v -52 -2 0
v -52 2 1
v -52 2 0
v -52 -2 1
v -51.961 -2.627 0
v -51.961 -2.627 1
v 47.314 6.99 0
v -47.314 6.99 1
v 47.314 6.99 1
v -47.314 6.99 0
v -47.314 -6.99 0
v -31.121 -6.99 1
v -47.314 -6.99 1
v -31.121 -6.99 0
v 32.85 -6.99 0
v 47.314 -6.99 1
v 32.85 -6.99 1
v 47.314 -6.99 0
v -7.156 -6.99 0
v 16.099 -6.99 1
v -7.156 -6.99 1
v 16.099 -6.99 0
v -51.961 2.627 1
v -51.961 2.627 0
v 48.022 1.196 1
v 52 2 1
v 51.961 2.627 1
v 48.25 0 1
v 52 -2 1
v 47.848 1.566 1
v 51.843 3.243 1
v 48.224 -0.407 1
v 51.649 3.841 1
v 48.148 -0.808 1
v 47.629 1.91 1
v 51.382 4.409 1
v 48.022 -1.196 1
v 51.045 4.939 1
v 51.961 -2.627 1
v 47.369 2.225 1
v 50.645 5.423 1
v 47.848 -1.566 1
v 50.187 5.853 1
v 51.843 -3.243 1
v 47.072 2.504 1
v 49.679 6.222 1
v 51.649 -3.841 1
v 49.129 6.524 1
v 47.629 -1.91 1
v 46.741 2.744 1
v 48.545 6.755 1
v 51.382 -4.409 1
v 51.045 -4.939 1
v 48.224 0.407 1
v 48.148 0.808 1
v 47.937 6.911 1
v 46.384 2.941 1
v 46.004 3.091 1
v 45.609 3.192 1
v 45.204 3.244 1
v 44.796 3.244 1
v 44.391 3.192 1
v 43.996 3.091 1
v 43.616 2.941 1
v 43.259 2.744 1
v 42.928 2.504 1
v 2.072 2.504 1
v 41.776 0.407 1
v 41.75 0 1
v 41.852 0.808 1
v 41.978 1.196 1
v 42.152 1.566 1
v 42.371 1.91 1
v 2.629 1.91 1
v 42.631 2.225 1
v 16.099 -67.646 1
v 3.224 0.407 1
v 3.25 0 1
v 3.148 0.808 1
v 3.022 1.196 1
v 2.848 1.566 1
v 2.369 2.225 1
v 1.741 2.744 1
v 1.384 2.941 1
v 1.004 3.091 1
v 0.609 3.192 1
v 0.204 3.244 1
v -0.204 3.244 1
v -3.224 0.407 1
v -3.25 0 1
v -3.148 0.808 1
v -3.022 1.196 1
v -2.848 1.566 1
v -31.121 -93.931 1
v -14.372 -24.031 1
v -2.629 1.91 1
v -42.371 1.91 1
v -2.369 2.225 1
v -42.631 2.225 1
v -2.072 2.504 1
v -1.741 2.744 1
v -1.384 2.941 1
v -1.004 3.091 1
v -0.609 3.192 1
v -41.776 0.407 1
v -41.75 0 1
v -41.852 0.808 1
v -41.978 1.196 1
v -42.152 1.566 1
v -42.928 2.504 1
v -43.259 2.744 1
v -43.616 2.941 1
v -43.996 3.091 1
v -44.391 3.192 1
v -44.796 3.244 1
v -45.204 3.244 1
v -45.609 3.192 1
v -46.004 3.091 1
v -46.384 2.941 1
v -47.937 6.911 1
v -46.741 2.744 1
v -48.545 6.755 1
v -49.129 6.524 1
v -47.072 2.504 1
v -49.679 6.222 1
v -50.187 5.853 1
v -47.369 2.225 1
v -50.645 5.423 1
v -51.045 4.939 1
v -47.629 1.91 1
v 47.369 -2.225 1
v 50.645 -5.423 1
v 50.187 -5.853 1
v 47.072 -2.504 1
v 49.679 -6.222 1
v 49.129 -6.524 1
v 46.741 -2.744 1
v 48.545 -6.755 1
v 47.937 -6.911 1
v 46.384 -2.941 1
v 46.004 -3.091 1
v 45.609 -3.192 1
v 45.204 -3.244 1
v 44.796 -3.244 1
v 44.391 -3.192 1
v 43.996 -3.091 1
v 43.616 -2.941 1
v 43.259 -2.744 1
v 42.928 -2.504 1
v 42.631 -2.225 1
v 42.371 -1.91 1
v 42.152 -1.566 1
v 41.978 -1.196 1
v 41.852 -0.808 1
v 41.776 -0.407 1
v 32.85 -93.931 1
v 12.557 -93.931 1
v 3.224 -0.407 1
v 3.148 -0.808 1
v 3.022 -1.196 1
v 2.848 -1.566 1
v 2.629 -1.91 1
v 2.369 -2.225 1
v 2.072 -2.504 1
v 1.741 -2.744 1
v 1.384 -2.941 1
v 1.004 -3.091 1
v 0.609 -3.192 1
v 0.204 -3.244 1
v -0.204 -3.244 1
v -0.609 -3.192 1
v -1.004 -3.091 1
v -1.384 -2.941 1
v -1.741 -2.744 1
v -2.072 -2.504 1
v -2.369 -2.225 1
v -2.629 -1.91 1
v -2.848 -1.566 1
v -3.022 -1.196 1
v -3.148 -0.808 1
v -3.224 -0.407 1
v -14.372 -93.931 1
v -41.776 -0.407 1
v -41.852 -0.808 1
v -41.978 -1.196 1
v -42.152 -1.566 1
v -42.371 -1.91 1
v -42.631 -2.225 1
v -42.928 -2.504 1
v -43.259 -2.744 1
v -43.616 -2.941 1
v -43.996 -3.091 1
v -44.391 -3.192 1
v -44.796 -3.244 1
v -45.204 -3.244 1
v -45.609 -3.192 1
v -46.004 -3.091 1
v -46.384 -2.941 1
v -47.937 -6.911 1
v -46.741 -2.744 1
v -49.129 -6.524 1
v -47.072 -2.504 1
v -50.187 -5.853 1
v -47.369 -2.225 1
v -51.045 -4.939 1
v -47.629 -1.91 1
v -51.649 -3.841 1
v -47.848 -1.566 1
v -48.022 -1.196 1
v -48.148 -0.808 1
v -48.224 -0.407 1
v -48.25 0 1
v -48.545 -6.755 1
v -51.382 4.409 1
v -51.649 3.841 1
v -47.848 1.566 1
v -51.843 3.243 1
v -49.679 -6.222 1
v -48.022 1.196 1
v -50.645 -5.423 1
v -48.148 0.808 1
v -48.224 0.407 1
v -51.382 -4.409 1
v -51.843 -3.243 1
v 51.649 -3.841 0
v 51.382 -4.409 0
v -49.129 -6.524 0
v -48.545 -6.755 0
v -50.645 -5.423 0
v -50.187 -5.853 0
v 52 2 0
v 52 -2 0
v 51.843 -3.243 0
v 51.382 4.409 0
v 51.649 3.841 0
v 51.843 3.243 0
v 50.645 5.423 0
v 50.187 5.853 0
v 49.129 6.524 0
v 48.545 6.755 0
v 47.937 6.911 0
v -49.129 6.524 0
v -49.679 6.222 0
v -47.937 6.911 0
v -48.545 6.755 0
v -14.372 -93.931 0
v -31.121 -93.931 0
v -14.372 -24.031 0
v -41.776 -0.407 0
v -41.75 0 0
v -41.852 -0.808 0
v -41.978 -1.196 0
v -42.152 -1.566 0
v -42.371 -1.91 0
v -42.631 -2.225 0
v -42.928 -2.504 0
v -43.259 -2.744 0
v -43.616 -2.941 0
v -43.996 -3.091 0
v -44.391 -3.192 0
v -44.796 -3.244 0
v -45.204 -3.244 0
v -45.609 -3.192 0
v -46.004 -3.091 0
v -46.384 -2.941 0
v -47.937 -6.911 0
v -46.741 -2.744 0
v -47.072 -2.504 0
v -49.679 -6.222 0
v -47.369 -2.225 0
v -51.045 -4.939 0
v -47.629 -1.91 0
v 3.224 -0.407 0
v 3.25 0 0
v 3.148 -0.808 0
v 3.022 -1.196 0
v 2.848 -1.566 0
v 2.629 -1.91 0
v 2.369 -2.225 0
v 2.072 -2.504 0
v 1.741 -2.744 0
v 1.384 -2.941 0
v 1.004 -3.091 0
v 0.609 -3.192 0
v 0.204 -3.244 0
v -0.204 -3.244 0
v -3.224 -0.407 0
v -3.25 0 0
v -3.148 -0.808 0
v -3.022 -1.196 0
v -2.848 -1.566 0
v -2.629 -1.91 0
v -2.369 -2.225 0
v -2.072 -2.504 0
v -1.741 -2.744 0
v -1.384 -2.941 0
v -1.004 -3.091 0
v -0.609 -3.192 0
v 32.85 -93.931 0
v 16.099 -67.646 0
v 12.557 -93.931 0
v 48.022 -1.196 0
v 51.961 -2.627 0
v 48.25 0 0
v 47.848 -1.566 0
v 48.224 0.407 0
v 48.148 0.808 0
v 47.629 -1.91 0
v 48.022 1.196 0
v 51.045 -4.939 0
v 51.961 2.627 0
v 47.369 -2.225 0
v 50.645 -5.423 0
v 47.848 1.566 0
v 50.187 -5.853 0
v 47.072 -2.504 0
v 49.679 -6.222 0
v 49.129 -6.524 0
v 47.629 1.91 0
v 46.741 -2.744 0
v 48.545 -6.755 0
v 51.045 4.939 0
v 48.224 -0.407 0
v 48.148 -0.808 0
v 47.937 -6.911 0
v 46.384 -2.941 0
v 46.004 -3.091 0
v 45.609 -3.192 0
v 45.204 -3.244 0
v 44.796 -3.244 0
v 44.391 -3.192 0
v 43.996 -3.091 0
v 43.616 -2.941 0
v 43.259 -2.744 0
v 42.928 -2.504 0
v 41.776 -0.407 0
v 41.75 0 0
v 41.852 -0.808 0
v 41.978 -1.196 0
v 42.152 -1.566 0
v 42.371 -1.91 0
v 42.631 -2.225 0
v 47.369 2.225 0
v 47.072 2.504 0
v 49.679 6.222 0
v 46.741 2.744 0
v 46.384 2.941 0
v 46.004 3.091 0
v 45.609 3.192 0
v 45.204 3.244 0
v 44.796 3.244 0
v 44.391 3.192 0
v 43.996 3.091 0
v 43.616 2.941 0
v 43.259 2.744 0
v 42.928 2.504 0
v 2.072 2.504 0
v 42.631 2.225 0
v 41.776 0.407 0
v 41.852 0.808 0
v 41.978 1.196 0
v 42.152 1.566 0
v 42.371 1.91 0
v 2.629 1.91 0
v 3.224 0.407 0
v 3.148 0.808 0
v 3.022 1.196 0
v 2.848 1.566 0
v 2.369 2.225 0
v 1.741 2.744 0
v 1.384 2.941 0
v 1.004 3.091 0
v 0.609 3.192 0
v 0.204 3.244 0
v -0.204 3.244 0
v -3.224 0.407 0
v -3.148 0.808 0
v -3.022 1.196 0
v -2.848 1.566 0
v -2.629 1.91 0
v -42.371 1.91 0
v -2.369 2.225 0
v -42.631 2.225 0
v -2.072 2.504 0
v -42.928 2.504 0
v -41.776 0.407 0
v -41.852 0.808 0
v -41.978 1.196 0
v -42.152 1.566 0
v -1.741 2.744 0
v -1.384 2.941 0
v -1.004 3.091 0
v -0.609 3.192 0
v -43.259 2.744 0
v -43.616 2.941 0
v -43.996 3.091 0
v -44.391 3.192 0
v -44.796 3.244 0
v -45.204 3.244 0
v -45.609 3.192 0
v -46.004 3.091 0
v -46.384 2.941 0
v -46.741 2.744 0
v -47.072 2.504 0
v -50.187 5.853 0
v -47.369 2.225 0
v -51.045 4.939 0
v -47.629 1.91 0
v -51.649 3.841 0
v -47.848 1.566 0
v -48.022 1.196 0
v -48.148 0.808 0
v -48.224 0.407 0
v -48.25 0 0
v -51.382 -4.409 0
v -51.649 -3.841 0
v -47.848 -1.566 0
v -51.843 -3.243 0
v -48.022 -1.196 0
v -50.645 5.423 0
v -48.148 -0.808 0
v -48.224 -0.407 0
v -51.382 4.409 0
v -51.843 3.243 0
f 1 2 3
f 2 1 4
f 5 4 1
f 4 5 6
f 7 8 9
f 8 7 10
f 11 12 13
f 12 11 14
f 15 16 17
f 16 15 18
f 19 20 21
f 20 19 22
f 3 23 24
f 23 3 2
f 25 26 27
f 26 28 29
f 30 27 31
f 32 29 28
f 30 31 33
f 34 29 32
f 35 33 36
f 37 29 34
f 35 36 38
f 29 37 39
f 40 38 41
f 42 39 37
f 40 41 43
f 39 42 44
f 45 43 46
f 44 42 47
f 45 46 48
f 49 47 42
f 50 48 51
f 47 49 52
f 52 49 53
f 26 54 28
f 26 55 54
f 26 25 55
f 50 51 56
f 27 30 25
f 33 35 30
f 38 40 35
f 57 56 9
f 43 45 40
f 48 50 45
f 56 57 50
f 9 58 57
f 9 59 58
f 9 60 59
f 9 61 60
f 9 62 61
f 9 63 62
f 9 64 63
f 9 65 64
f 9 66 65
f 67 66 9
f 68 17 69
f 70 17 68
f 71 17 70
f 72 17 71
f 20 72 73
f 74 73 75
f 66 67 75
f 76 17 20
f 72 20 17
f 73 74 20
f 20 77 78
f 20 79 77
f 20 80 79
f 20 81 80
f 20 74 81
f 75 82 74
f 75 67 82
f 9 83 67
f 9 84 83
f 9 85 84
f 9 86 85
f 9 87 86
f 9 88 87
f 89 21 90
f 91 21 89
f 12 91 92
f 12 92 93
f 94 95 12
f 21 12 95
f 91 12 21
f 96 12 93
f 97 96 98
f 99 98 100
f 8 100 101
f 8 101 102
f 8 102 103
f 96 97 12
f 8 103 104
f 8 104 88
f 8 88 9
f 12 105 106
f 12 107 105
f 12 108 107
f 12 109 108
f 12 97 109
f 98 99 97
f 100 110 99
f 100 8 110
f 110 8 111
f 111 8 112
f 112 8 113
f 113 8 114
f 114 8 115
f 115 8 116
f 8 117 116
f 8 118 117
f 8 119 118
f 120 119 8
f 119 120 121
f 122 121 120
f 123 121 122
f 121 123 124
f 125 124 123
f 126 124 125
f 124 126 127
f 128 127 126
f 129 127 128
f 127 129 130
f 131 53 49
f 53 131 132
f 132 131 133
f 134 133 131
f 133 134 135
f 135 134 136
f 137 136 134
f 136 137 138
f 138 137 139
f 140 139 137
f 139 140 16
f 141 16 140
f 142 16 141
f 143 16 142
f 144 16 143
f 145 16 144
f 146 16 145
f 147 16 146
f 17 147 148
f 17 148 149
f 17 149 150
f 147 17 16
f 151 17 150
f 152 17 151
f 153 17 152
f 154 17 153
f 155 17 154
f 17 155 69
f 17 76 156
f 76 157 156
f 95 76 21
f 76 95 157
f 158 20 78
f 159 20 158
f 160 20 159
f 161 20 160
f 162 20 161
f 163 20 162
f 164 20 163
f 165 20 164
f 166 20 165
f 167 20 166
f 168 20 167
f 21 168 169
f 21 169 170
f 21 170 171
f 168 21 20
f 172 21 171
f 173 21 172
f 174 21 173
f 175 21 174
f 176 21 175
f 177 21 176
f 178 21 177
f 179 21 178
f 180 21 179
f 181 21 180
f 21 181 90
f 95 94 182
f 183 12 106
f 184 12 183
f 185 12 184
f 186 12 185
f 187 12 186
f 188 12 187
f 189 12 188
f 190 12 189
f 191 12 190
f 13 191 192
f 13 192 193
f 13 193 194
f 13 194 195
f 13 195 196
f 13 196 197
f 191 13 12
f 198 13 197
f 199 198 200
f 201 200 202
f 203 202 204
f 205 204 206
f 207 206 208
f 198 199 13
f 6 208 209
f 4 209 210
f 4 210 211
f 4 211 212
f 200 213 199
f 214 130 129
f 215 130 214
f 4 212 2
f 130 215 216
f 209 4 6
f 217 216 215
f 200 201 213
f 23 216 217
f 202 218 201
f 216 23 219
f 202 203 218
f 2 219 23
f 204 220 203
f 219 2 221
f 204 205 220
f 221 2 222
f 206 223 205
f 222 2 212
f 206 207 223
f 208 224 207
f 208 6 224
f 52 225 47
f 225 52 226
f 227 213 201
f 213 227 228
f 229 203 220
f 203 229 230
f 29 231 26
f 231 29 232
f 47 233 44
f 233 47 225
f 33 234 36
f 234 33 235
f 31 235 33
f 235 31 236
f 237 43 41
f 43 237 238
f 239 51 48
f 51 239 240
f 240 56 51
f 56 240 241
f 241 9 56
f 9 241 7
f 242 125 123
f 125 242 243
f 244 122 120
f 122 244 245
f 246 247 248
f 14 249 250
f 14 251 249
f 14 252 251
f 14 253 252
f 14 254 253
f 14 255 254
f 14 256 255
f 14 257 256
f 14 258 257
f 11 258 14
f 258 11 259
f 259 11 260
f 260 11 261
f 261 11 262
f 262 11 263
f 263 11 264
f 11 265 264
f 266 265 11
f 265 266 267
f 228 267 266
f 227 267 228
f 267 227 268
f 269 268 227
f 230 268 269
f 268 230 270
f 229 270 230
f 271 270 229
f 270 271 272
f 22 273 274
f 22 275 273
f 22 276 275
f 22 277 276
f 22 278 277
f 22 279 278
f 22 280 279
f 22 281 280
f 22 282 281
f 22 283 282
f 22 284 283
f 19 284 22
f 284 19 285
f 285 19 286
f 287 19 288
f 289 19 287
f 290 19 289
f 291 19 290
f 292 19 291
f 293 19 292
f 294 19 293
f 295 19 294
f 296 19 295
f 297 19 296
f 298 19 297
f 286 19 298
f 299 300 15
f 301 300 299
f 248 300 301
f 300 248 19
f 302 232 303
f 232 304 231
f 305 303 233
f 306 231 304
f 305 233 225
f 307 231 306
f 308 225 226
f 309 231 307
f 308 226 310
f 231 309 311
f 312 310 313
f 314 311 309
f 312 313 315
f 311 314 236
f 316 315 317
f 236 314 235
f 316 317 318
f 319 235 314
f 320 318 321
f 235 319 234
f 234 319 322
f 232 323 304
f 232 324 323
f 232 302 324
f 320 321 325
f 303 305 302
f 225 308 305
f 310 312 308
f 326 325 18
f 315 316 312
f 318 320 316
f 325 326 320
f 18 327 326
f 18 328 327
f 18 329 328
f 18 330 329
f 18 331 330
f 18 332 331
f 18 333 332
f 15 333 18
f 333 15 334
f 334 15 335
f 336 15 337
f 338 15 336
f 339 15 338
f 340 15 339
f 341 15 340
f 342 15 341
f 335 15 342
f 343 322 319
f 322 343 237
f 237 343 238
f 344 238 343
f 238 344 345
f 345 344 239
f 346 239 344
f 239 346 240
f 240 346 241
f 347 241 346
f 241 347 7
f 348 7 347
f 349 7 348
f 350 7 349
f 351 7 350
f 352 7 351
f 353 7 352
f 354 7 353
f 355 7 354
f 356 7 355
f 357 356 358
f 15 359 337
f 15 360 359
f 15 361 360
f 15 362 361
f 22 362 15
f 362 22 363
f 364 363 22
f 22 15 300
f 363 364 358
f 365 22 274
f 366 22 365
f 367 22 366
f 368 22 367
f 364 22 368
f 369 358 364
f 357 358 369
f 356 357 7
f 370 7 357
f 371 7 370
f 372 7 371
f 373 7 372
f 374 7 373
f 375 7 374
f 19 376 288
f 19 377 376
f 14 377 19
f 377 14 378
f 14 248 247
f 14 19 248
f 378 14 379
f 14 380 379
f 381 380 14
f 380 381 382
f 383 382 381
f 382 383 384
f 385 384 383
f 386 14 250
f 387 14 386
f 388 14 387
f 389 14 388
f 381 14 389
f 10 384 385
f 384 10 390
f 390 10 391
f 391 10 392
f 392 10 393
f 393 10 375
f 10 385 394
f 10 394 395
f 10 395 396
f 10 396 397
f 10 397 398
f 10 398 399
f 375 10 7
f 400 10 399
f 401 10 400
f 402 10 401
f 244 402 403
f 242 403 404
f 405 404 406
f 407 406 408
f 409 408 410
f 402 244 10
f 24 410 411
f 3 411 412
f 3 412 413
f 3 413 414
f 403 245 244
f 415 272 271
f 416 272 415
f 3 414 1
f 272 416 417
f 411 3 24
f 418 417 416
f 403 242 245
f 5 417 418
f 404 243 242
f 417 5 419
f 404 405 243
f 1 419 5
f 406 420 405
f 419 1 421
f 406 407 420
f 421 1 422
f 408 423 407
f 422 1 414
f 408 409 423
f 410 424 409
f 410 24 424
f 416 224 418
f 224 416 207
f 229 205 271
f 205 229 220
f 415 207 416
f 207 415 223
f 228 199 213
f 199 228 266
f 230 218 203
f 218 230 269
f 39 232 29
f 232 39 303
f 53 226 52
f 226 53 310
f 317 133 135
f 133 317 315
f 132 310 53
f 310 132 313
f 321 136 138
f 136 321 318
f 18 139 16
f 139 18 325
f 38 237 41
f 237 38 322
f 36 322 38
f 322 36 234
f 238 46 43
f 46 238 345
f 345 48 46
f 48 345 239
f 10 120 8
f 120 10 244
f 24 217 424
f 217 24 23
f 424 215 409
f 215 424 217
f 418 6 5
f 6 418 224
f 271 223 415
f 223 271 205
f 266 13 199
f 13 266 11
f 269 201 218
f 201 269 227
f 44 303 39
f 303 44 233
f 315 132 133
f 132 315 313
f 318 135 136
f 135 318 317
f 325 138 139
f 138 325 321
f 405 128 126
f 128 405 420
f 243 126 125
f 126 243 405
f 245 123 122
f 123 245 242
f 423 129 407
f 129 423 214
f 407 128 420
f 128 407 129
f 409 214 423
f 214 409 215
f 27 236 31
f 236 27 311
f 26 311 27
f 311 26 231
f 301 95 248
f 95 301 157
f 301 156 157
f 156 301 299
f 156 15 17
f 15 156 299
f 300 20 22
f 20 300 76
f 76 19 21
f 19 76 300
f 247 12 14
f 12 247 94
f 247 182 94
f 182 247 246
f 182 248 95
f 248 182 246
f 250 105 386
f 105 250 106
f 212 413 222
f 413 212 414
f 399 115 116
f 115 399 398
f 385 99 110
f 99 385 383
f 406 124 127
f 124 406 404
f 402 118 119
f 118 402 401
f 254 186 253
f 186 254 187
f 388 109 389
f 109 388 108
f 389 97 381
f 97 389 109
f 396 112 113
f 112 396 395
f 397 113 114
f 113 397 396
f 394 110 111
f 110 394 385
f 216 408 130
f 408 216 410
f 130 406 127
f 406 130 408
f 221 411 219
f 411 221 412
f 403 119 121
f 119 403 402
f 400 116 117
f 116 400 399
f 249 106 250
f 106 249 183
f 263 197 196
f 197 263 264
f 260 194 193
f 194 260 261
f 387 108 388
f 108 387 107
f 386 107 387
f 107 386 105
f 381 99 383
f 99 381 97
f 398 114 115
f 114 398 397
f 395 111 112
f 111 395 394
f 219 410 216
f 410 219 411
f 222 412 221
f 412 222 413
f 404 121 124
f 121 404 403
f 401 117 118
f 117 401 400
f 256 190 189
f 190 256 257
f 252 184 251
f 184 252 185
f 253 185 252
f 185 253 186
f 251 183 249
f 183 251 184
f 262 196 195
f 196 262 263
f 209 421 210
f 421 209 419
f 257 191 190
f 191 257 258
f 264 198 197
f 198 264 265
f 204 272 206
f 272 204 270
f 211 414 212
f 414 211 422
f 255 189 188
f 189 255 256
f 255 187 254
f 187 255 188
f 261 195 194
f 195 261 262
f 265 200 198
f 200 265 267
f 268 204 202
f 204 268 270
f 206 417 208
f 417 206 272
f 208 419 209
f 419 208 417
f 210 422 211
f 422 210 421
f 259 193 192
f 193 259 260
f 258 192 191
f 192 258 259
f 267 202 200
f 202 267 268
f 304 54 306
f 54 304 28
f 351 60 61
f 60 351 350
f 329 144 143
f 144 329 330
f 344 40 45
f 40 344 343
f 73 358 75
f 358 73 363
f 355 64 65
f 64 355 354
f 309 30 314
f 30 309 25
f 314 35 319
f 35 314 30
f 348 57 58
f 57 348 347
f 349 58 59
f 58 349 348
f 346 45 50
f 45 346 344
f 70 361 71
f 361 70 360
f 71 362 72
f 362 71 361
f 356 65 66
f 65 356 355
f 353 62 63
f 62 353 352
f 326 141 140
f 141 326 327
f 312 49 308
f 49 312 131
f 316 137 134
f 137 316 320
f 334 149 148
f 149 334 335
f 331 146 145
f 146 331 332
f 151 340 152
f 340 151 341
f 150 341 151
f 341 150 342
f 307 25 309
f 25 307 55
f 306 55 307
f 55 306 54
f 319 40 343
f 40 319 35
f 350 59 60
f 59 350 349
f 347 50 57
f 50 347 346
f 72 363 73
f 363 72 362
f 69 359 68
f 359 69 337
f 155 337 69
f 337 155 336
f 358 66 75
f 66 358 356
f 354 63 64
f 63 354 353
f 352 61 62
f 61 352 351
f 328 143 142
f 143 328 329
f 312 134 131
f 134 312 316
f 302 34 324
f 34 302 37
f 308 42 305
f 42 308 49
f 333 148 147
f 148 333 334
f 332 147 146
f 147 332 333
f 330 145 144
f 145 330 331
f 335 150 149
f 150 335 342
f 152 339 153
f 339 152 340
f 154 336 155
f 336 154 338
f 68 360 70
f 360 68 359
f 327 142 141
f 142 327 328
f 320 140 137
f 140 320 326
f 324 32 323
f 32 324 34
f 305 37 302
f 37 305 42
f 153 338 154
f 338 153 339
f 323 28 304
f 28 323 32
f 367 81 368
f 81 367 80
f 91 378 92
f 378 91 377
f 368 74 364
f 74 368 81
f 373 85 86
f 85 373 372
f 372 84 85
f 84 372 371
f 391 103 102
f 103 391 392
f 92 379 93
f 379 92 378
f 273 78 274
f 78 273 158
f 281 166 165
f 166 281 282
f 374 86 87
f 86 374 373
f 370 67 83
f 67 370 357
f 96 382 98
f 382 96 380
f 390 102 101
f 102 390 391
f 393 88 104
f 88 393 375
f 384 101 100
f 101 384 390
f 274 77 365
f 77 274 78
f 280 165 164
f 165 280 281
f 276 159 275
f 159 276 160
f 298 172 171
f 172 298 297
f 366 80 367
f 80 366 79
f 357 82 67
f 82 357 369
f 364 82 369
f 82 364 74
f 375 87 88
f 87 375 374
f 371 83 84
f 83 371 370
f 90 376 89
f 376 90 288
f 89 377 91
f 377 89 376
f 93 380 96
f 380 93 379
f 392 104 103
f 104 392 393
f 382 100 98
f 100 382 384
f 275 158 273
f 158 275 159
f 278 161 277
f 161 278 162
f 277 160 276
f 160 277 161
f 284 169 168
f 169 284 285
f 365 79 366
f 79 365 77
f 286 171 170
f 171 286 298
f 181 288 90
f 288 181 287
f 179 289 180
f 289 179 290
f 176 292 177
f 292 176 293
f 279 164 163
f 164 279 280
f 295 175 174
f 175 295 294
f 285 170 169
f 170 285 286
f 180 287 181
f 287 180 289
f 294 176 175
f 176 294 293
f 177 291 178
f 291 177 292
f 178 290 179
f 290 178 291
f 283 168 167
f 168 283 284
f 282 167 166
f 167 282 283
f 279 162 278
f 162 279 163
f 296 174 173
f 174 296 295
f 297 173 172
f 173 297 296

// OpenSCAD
$fn = 50;


difference() {
	union() {
		translate(v = [0, 0, 0]) {
			rotate(a = [0, 0, 0]) {
				hull() {
					translate(v = [-47.0000000000, 2.0000000000, 0]) {
						rotate(a = [0, 0, 0]) {
							translate(v = [0, 0, 0]) {
								rotate(a = [0, 0, 0]) {
									cylinder(h = 1, r = 5);
								}
							}
						}
					}
					translate(v = [47.0000000000, 2.0000000000, 0]) {
						rotate(a = [0, 0, 0]) {
							translate(v = [0, 0, 0]) {
								rotate(a = [0, 0, 0]) {
									cylinder(h = 1, r = 5);
								}
							}
						}
					}
					translate(v = [-47.0000000000, -2.0000000000, 0]) {
						rotate(a = [0, 0, 0]) {
							translate(v = [0, 0, 0]) {
								rotate(a = [0, 0, 0]) {
									cylinder(h = 1, r = 5);
								}
							}
						}
					}
					translate(v = [47.0000000000, -2.0000000000, 0]) {
						rotate(a = [0, 0, 0]) {
							translate(v = [0, 0, 0]) {
								rotate(a = [0, 0, 0]) {
									cylinder(h = 1, r = 5);
								}
							}
						}
					}
				}
			}
		}
		translate(v = [0, 0, 0]) {
			rotate(a = [0, 0, 0]) {
				linear_extrude(height = 1) {
					text(font = "DejaVu Sans Mono:style=Bold", halign = "center", size = 95.0000000000, text = "N", valign = "top");
				}
			}
		}
	}
	union() {
		translate(v = [-45.0000000000, 0.0000000000, -125.0000000000]) {
			rotate(a = [0, 0, 0]) {
				cylinder(h = 250, r = 3.2500000000);
			}
		}
		translate(v = [45.0000000000, 0.0000000000, -125.0000000000]) {
			rotate(a = [0, 0, 0]) {
				cylinder(h = 250, r = 3.2500000000);
			}
		}
		translate(v = [45.0000000000, 0.0000000000, -125.0000000000]) {
			rotate(a = [0, 0, 0]) {
				cylinder(h = 250, r = 3.2500000000);
			}
		}
		translate(v = [0, 0, -125.0000000000]) {
			rotate(a = [0, 0, 0]) {
				cylinder(h = 250, r = 3.2500000000);
			}
		}
	}
}
